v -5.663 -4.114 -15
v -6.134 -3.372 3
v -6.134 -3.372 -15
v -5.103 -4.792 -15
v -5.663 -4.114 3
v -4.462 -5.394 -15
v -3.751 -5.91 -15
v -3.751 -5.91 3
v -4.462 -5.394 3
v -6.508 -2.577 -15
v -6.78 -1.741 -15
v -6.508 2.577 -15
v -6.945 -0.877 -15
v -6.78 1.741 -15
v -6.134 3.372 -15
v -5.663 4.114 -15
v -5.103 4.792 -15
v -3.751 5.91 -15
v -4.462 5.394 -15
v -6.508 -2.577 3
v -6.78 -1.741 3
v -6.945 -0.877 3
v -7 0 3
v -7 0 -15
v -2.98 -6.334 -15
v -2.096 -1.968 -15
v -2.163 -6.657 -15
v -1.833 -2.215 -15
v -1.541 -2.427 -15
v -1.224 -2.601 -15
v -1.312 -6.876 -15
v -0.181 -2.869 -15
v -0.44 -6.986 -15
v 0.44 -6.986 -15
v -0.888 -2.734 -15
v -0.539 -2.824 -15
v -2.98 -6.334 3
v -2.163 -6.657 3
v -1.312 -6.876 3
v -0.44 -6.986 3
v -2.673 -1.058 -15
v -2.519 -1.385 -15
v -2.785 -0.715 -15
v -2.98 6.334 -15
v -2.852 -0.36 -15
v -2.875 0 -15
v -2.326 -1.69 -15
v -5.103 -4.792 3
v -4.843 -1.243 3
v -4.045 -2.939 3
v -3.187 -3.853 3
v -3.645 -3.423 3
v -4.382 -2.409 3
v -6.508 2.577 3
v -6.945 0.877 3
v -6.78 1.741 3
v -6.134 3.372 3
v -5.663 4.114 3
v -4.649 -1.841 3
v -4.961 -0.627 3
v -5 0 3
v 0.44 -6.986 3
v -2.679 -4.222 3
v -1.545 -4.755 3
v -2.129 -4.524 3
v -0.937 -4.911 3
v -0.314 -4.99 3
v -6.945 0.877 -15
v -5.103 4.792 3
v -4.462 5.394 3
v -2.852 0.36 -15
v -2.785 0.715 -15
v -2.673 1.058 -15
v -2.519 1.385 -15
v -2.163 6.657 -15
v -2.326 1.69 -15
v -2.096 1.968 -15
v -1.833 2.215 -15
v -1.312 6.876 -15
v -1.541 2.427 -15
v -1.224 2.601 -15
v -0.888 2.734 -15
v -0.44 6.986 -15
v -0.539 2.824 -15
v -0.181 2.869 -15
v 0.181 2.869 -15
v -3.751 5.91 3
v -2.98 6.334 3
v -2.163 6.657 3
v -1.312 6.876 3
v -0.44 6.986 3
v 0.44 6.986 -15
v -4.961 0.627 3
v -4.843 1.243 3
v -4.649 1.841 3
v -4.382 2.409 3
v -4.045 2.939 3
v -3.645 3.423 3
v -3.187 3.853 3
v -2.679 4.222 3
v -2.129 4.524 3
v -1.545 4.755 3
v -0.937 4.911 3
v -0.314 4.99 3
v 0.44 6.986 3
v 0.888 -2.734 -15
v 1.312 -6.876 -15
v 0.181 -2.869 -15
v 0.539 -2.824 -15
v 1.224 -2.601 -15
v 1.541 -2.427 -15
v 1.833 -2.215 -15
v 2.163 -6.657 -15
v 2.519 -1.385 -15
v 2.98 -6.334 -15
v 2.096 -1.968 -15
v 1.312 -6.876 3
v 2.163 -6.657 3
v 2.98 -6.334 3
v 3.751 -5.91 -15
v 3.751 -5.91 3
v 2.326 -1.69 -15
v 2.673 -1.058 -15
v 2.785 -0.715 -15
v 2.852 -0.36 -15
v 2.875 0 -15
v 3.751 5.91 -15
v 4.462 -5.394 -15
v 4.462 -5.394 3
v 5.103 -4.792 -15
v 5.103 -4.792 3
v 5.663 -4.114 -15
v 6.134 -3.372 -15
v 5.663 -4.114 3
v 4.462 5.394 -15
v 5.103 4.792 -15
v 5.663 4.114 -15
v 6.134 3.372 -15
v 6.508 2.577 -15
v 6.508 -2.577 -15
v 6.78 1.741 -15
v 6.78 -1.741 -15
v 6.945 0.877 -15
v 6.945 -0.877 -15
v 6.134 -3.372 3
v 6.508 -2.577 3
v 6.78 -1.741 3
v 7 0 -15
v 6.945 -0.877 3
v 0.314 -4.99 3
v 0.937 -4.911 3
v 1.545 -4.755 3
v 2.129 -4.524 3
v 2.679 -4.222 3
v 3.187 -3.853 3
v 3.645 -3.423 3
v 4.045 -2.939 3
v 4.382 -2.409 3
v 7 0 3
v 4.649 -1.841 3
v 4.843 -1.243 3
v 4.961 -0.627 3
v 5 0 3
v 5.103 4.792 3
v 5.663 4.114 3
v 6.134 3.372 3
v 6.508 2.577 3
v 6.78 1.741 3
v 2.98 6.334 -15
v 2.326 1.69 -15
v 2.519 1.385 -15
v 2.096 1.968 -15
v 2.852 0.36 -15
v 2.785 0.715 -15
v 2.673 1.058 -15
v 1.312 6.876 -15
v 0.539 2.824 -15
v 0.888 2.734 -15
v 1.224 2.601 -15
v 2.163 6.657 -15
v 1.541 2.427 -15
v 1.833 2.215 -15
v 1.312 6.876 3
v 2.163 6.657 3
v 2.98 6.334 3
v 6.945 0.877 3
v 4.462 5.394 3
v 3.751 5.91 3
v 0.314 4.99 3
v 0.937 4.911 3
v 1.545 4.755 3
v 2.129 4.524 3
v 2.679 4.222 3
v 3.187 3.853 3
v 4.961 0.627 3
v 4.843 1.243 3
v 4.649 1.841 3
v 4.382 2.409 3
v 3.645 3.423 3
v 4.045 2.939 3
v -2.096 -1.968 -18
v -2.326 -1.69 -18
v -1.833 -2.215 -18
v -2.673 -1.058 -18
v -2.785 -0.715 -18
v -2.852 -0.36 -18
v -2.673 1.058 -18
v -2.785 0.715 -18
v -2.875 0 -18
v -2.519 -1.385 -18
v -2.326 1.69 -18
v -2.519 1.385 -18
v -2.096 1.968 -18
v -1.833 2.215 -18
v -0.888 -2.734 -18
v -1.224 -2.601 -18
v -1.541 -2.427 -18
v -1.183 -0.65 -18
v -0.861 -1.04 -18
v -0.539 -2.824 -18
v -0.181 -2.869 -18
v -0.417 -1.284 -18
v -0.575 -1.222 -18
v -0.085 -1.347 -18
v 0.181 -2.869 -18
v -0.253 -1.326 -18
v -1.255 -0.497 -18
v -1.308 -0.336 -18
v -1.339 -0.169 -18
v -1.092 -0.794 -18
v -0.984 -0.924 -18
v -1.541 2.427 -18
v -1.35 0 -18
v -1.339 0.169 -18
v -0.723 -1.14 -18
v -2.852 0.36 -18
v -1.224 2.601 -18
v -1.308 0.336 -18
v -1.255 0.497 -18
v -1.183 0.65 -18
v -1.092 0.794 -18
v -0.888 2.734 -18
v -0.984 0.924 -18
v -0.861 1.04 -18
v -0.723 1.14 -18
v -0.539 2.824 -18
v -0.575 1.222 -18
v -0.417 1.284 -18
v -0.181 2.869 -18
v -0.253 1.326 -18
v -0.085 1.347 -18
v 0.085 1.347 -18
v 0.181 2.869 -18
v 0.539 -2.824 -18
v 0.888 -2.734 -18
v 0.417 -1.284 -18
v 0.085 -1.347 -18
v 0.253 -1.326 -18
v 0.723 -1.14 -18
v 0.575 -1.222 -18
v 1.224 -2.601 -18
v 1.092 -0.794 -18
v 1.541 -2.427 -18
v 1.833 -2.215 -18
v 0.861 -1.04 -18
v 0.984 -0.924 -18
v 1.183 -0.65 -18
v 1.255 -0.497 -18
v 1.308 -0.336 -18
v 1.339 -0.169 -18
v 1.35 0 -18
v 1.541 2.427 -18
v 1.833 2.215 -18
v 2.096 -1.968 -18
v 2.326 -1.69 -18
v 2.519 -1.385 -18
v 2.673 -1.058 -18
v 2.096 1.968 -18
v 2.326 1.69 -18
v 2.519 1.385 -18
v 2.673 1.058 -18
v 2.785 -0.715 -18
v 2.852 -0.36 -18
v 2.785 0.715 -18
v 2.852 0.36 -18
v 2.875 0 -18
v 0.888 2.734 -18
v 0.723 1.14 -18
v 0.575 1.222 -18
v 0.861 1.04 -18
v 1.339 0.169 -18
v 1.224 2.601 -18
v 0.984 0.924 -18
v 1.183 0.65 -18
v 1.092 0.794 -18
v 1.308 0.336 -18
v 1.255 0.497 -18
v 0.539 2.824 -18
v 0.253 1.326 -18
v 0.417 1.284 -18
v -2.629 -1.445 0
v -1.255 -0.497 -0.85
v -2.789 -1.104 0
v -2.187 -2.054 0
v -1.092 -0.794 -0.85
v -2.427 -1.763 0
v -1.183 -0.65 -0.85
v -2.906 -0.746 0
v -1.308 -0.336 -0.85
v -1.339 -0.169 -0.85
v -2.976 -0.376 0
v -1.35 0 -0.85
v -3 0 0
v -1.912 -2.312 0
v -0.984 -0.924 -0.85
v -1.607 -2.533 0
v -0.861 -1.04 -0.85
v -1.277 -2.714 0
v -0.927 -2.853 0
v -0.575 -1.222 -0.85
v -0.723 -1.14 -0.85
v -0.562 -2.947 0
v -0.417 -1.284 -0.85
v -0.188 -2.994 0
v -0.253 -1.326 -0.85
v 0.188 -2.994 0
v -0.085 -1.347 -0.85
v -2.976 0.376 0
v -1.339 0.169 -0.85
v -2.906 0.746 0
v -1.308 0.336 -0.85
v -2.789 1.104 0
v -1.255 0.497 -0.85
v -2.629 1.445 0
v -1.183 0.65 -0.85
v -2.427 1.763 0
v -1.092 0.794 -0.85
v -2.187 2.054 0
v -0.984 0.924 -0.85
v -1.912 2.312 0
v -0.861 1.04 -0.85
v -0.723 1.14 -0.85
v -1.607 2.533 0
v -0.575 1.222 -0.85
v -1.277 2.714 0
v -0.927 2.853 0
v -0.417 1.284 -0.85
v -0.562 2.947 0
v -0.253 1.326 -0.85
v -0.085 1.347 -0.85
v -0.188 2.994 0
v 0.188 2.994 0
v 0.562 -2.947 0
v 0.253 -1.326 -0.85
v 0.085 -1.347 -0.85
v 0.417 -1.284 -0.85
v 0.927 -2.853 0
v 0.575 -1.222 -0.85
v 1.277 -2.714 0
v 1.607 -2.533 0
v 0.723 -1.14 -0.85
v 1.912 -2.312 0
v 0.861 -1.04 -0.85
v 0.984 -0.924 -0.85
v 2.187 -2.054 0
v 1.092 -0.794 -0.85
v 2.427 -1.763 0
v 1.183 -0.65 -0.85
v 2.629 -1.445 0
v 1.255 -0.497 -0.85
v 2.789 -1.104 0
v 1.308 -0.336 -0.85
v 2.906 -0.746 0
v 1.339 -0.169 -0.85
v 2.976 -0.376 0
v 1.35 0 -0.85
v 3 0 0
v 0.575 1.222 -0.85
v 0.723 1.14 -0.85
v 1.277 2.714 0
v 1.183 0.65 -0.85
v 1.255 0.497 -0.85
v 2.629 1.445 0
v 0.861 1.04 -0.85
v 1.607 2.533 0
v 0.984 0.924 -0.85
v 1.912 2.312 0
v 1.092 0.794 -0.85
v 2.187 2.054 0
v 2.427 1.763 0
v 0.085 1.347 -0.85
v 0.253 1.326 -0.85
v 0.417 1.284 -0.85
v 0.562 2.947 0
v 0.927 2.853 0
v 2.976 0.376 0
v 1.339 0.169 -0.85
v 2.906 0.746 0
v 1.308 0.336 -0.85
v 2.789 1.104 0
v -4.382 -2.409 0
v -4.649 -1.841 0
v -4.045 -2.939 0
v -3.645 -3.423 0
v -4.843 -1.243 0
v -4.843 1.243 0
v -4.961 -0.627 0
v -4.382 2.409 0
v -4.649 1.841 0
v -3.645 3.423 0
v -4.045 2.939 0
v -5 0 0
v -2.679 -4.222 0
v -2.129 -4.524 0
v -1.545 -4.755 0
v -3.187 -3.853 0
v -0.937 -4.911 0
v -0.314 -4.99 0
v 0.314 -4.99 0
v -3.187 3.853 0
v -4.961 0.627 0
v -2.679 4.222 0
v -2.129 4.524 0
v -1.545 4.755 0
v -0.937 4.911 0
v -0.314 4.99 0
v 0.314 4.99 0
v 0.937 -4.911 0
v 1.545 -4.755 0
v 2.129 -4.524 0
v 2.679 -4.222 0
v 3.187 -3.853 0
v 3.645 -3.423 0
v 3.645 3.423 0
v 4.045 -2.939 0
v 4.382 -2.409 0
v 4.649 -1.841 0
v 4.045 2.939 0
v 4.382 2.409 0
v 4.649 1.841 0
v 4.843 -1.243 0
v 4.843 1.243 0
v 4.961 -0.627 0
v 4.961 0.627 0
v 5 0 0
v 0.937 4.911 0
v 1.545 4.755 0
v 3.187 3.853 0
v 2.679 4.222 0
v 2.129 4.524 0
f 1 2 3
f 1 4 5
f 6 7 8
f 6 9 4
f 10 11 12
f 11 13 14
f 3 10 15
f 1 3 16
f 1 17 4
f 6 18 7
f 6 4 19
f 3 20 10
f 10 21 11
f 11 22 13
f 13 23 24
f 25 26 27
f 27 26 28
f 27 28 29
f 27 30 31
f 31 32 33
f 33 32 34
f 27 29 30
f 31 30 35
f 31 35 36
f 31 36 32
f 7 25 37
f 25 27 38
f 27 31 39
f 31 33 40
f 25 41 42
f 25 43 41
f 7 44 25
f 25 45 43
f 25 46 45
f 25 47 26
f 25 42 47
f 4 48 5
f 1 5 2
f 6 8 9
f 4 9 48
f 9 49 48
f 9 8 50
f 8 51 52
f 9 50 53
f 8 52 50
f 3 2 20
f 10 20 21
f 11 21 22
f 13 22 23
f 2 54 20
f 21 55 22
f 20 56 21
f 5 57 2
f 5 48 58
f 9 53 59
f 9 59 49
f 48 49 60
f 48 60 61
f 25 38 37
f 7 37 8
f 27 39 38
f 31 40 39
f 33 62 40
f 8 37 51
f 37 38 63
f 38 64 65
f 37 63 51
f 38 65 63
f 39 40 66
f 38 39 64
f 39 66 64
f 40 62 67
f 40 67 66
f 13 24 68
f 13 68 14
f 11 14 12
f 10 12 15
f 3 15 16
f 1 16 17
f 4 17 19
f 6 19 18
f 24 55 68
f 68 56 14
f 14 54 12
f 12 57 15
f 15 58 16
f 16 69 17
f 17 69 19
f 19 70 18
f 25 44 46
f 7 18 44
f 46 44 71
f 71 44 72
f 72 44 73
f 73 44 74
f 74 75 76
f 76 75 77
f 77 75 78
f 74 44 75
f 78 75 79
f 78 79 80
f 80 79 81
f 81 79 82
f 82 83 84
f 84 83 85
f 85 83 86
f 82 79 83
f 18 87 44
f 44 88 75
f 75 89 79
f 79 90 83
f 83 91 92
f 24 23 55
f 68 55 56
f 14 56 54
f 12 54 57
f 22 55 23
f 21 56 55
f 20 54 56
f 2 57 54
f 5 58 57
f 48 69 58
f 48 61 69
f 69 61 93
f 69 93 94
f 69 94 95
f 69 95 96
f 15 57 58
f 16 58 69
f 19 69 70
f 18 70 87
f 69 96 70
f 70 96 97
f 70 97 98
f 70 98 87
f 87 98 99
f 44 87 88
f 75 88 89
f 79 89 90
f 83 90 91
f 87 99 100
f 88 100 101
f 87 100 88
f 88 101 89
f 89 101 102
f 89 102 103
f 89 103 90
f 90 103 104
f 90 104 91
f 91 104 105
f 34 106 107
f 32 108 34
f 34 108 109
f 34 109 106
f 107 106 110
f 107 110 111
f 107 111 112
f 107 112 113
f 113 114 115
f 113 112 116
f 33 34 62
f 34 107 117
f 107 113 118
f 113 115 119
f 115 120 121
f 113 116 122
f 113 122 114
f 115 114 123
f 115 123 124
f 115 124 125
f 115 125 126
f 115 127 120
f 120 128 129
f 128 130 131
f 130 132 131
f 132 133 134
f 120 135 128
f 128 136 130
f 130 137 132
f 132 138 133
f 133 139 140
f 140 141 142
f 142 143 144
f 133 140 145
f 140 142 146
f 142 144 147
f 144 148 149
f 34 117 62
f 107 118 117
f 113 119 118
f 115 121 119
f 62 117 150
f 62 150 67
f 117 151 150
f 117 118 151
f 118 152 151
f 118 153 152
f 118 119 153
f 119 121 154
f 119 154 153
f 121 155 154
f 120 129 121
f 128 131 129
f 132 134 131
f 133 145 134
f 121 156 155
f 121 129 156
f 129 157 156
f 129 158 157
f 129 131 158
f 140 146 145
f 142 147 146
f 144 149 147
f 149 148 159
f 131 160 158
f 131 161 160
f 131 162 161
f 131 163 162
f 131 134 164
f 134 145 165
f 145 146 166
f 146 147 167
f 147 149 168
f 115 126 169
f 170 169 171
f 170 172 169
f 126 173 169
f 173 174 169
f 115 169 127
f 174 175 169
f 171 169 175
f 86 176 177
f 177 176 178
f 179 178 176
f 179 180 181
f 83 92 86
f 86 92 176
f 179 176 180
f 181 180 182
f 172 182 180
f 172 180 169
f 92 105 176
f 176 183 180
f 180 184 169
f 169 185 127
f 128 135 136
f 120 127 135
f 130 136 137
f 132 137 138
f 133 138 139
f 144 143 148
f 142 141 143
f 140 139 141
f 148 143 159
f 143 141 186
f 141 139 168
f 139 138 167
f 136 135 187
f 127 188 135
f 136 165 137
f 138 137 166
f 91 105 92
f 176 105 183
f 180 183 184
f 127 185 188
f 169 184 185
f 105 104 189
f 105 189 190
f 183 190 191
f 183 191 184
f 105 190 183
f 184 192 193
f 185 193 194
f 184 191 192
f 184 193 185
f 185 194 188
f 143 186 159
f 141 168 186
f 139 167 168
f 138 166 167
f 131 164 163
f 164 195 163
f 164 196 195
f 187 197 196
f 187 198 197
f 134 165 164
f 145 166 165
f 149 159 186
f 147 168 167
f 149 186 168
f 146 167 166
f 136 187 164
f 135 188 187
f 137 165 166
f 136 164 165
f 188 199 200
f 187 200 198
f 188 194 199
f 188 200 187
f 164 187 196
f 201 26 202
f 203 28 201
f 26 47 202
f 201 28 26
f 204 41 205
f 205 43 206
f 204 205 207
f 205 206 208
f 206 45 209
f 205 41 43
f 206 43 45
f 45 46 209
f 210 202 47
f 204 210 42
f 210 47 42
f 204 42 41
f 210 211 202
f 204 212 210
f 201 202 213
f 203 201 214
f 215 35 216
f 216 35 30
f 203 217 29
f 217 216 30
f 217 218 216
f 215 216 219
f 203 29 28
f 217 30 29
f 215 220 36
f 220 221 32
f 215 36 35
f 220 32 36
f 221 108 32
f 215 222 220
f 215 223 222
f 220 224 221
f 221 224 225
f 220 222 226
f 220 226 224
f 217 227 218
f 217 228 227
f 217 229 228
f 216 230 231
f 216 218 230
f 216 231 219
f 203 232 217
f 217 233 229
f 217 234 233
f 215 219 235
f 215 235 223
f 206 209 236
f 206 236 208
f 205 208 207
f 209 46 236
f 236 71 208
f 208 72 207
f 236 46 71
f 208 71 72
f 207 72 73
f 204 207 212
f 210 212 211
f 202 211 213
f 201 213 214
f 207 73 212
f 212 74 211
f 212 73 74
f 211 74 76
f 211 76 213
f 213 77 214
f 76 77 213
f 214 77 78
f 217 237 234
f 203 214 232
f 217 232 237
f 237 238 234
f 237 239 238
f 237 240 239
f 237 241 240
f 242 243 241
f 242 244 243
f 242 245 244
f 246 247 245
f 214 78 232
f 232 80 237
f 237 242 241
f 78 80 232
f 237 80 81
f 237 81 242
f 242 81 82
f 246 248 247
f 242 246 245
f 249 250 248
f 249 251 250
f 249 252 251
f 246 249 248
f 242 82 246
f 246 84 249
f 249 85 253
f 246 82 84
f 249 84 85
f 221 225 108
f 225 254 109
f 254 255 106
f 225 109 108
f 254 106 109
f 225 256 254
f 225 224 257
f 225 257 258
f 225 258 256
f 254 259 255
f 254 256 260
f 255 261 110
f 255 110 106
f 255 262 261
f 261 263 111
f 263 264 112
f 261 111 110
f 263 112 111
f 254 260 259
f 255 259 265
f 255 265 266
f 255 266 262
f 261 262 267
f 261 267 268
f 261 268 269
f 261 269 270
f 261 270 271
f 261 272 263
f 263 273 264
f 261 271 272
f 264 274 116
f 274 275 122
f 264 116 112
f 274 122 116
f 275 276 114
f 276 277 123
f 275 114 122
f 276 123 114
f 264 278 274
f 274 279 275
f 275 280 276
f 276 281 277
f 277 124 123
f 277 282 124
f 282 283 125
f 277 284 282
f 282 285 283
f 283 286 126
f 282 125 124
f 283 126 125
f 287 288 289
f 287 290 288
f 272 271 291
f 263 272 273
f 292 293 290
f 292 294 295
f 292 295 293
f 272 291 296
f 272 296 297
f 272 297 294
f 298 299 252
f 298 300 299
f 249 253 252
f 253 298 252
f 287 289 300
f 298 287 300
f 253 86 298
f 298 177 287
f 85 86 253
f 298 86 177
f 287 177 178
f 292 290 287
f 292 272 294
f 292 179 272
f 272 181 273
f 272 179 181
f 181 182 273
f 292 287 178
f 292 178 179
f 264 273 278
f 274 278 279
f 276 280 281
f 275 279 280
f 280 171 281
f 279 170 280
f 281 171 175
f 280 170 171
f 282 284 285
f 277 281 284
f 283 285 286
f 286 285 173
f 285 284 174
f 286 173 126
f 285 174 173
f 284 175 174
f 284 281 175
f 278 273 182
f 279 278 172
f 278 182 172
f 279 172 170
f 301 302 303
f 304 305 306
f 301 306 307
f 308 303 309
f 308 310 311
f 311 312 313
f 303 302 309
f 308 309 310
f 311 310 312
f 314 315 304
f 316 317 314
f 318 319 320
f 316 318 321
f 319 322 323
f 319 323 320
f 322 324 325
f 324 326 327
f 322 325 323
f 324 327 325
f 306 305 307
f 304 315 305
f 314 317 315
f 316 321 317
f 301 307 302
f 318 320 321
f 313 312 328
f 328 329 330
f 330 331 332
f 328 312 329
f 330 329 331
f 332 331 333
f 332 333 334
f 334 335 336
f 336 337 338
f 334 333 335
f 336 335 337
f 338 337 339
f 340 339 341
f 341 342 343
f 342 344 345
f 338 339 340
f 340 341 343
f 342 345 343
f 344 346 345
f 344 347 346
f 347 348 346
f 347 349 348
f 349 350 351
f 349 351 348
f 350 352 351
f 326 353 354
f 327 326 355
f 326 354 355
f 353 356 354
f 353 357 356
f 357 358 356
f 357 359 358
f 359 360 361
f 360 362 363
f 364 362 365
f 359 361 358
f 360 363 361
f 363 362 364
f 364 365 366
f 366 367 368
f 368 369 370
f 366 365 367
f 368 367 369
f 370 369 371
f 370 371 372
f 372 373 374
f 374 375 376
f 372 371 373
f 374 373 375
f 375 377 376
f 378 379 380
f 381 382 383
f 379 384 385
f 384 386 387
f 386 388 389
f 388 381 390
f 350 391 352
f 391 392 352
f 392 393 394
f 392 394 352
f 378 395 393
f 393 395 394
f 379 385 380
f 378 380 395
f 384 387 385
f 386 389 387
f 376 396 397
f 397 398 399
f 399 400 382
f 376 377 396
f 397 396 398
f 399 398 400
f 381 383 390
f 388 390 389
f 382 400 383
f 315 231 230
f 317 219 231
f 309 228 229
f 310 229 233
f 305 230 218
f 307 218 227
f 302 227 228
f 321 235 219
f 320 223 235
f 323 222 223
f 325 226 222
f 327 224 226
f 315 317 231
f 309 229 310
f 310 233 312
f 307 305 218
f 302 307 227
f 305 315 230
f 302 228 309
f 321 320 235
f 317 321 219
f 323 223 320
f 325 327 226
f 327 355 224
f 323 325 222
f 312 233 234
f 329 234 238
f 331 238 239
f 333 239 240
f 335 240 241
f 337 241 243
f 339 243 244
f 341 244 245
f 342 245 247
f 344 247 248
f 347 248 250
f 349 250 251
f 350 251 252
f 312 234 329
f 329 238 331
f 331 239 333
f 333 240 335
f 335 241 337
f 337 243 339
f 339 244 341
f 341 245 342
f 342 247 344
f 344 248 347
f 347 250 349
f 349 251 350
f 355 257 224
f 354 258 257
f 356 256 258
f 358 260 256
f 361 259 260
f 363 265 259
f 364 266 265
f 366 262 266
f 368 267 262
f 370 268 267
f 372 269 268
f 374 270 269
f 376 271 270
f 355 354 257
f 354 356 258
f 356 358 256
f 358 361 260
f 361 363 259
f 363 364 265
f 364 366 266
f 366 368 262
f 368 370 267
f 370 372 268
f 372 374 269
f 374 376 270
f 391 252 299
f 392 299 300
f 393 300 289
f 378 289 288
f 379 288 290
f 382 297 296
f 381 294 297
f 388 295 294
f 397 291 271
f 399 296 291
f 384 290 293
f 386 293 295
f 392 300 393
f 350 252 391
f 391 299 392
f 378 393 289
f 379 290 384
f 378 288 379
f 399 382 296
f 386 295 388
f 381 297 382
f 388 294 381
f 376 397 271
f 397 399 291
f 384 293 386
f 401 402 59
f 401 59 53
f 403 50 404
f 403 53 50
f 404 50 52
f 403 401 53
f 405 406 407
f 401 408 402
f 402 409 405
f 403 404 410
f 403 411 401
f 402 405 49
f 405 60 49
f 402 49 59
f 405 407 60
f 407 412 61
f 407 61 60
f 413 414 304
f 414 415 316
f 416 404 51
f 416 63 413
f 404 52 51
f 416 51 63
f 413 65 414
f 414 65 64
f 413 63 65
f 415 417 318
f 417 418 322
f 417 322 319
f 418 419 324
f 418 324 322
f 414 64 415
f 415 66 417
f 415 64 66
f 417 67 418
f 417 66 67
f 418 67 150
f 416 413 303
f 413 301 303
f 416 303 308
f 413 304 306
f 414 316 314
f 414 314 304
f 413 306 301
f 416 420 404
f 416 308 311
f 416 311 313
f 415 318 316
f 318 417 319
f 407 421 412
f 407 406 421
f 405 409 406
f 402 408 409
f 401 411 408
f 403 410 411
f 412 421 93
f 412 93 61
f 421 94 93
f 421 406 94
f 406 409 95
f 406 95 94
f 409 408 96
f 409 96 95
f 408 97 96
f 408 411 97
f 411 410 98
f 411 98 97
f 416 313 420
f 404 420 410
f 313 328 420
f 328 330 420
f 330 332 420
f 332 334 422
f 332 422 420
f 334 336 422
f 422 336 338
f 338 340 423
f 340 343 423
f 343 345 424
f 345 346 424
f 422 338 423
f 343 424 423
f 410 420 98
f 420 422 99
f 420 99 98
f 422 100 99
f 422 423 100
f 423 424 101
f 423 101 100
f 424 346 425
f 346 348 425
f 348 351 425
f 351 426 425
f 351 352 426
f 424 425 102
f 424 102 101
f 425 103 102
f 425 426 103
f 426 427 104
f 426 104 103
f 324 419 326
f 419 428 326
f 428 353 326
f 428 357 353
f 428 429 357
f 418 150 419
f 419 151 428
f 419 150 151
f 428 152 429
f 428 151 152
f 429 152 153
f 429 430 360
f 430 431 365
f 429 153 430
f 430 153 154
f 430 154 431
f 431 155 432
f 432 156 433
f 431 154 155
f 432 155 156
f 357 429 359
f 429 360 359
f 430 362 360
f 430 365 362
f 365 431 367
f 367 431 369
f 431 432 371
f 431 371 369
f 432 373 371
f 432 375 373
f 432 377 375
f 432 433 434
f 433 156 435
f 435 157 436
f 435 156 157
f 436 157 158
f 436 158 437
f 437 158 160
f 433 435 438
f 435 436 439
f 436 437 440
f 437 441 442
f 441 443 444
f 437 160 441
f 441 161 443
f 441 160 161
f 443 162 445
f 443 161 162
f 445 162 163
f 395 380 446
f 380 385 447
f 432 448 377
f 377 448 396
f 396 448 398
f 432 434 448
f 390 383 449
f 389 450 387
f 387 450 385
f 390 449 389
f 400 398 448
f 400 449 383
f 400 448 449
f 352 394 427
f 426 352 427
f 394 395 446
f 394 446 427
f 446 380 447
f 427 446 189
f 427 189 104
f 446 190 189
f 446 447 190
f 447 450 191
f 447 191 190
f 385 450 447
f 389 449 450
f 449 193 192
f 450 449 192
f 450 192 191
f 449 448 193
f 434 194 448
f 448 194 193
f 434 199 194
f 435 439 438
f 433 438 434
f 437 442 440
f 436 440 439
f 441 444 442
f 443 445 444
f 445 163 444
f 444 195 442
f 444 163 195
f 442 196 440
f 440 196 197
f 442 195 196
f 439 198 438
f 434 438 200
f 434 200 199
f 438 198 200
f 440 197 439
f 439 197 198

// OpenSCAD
$fn = 50;

difference() {
	union() {
		translate(v = [0, 0, -15.0]) {
			cylinder(h = 18, r = 7.0);
		}
		#translate(v = [0, 0, -18.0]) {
			cylinder(h = 18, r = 2.875);
		}
	}
	union() {
		translate(v = [0, 0, 0]) {
			rotate(a = [0, 0, 0]) {
				difference() {
					union() {
						translate(v = [0, 0, -18.0]) {
							cylinder(h = 18, r = 1.0);
						}
						translate(v = [0, 0, -0.85]) {
							cylinder(h = 0.85, r1 = 1.35, r2 = 3.0);
						}
						translate(v = [0, 0, -18.0]) {
							cylinder(h = 18, r = 1.35);
						}
						translate(v = [0, 0, -18.0]) {
							cylinder(h = 18, r = 1.0);
						}
					}
					union();
				}
			}
		}
		#cylinder(h = 3, r = 5.0);
	}
}
